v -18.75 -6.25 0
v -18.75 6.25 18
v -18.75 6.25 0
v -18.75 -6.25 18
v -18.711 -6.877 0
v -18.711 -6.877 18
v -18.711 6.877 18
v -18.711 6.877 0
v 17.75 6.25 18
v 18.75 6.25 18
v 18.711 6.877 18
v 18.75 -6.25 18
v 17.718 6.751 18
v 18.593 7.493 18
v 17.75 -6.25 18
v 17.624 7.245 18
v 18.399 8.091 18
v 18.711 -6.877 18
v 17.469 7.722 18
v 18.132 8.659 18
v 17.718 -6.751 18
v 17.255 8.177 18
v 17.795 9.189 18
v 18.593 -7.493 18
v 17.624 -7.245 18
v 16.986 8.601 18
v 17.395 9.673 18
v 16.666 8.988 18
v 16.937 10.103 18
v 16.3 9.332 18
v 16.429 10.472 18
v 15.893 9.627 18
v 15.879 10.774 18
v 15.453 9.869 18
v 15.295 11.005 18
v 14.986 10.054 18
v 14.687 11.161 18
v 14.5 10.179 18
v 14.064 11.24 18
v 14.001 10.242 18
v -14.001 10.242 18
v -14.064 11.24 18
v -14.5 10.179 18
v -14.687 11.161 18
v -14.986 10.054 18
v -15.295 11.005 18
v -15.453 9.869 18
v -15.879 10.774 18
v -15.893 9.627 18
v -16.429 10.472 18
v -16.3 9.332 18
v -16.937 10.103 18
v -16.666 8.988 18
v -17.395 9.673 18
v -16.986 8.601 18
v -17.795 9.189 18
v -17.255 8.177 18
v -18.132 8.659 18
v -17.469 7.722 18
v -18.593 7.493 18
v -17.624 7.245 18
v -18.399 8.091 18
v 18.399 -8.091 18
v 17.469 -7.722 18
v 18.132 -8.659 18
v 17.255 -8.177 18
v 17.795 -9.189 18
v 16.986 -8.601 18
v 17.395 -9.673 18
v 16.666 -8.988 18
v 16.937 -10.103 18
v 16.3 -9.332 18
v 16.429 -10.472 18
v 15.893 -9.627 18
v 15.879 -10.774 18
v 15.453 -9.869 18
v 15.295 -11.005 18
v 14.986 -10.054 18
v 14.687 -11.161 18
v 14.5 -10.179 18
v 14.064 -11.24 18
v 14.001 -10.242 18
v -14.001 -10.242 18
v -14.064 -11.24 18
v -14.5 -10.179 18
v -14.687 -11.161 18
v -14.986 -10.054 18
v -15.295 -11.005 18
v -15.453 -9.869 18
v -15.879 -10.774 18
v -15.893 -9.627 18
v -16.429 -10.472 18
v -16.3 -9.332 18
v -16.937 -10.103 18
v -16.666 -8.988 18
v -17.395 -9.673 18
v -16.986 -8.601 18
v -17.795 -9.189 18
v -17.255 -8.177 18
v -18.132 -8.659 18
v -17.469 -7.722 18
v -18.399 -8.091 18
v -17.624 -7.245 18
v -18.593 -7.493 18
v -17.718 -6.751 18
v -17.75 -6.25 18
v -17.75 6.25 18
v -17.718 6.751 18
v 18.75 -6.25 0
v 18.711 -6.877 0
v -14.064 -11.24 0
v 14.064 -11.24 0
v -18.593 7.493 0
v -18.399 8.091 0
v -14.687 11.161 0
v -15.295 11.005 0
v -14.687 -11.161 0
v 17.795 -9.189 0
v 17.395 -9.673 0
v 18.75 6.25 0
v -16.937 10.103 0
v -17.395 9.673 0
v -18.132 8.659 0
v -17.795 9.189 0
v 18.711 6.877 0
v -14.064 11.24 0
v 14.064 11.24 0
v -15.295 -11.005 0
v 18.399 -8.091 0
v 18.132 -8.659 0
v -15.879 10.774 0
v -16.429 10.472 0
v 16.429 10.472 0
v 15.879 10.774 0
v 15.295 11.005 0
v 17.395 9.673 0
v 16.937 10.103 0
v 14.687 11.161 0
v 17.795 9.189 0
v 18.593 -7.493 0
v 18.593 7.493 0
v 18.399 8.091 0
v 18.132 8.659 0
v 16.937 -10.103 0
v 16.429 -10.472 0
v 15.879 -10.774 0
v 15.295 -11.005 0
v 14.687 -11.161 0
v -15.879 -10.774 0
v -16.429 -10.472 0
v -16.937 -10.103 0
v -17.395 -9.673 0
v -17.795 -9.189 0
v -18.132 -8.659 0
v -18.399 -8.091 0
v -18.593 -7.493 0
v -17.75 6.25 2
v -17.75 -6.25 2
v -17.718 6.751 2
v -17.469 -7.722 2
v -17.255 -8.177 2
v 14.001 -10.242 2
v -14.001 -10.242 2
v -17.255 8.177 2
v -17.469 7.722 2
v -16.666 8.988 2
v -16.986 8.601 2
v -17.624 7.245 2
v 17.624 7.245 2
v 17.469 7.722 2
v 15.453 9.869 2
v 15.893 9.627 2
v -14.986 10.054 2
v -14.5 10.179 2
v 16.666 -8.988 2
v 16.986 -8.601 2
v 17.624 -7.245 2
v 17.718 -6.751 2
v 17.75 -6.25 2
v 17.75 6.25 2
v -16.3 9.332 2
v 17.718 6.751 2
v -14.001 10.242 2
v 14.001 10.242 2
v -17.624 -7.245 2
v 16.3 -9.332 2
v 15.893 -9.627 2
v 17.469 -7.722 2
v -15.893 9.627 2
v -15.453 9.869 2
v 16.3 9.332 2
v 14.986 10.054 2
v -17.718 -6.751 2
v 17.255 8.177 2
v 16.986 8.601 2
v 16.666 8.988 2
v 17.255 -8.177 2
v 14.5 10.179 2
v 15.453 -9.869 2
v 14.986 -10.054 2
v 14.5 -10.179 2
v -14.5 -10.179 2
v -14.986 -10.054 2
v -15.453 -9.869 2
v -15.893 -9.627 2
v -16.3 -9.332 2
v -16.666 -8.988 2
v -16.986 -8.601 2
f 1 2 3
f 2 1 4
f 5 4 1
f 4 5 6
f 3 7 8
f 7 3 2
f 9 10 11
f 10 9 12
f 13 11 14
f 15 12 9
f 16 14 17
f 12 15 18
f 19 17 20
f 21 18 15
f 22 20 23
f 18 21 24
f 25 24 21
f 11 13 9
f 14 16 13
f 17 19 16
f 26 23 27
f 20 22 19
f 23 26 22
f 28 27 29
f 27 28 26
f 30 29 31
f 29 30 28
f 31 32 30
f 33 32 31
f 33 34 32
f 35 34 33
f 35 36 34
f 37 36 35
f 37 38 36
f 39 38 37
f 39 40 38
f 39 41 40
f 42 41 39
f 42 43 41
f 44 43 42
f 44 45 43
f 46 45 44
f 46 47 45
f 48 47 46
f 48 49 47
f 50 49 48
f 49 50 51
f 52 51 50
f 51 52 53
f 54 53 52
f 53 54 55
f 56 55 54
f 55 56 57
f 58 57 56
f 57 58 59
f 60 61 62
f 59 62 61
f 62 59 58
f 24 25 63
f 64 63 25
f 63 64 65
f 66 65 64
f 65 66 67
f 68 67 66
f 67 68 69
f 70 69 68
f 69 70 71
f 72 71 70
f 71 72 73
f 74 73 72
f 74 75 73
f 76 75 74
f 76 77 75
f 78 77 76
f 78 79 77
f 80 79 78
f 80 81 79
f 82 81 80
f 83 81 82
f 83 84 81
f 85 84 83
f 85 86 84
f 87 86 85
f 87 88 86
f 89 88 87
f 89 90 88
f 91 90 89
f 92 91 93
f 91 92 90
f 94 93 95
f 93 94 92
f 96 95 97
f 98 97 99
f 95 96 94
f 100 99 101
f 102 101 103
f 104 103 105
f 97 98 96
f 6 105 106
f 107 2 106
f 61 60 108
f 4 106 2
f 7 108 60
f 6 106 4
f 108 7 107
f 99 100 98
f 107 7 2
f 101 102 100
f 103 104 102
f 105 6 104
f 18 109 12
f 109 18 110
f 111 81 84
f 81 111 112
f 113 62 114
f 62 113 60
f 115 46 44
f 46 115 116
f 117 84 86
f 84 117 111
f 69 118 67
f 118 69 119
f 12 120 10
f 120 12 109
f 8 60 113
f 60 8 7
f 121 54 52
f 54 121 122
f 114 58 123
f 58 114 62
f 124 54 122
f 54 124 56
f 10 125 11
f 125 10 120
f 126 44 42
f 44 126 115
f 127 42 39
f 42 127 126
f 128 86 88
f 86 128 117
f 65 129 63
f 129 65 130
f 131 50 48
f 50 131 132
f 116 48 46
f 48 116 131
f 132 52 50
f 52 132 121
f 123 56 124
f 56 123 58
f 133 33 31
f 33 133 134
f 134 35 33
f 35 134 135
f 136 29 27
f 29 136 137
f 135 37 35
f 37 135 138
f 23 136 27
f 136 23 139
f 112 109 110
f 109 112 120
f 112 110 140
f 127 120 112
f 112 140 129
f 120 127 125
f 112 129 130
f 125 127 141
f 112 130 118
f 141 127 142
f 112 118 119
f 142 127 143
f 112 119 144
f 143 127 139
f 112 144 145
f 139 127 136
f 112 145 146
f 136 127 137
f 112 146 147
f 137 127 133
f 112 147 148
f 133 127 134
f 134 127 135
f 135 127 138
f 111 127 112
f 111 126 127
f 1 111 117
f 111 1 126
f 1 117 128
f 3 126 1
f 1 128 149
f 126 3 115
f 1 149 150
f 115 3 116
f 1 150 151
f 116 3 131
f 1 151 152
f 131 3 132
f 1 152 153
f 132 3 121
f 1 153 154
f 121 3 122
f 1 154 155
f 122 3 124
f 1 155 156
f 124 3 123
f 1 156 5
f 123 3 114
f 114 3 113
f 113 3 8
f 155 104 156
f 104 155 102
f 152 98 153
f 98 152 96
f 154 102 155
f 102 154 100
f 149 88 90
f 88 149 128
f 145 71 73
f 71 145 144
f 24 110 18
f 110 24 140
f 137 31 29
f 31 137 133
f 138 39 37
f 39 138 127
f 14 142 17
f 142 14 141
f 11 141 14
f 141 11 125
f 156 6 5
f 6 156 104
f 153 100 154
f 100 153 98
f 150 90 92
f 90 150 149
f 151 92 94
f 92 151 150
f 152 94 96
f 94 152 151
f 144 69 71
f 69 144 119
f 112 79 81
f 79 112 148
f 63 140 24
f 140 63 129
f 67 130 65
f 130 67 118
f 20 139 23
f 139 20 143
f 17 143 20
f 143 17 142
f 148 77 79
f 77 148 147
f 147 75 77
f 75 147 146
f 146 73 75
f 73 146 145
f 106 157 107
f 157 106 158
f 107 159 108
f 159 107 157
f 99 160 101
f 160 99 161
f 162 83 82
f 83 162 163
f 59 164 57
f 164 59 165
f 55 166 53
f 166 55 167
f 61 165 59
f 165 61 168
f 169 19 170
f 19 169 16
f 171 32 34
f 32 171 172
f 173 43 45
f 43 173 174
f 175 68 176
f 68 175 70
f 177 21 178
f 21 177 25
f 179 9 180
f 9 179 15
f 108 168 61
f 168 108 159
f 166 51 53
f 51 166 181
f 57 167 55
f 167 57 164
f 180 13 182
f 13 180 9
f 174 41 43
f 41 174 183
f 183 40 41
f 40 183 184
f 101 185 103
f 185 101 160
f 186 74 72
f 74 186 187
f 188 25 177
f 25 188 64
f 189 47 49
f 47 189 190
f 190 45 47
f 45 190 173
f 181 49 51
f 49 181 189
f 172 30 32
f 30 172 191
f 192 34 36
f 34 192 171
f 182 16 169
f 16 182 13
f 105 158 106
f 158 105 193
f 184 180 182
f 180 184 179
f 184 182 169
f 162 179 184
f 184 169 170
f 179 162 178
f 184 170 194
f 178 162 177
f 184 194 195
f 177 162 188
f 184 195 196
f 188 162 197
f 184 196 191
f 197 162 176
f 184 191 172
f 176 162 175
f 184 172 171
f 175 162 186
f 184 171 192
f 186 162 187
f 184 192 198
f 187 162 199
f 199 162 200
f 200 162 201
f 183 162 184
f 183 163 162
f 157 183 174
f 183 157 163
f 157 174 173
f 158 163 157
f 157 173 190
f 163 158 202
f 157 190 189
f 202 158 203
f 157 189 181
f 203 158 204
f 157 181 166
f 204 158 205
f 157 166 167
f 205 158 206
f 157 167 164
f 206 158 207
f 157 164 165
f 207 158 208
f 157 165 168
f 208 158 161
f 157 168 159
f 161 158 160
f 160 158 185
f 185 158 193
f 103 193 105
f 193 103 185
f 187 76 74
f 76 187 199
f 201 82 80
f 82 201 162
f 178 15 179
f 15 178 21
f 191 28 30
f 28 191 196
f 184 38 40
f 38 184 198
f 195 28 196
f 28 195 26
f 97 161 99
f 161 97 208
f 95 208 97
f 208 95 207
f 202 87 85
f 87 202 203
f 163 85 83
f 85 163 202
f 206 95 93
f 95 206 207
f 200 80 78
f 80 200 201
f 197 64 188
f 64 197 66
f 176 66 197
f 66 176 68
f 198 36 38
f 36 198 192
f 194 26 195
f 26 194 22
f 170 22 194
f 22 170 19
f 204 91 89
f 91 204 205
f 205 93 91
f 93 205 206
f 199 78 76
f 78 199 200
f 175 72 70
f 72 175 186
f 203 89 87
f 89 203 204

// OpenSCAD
$fn = 50;


difference() {
	union() {
		hull() {
			translate(v = [-13.7500000000, 6.2500000000, 0]) {
				cylinder(h = 18, r = 5);
			}
			translate(v = [13.7500000000, 6.2500000000, 0]) {
				cylinder(h = 18, r = 5);
			}
			translate(v = [-13.7500000000, -6.2500000000, 0]) {
				cylinder(h = 18, r = 5);
			}
			translate(v = [13.7500000000, -6.2500000000, 0]) {
				cylinder(h = 18, r = 5);
			}
		}
	}
	union() {
		translate(v = [0, 0, 2]) {
			hull() {
				translate(v = [-13.7500000000, 6.2500000000, 0]) {
					cylinder(h = 16, r = 4);
				}
				translate(v = [13.7500000000, 6.2500000000, 0]) {
					cylinder(h = 16, r = 4);
				}
				translate(v = [-13.7500000000, -6.2500000000, 0]) {
					cylinder(h = 16, r = 4);
				}
				translate(v = [13.7500000000, -6.2500000000, 0]) {
					cylinder(h = 16, r = 4);
				}
			}
		}
	}
}
